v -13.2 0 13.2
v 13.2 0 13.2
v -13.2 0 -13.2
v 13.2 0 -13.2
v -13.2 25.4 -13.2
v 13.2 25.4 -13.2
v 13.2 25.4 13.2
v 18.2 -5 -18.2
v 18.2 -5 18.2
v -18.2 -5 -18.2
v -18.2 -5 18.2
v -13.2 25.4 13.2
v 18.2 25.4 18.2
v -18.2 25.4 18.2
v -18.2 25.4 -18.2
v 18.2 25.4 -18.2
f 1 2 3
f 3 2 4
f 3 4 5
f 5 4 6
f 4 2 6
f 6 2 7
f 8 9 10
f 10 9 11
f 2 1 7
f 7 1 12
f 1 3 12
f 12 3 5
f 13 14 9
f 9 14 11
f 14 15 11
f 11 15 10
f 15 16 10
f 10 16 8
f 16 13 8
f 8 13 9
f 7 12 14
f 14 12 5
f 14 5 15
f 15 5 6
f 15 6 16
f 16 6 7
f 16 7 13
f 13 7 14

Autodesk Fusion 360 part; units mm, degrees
sketch "Sketch1" plane through (0, 0, 0) normal (0, 1, 0) x (1, 0, 0)
  line L0 (18.2, 18.2) -> (-18.2, 18.2)
  line L1 (-18.2, 18.2) -> (-18.2, -18.2)
  line L2 (-18.2, -18.2) -> (18.2, -18.2)
  line L3 (18.2, -18.2) -> (18.2, 18.2)
  line L4 (18.2, 18.2) -> (-18.2, -18.2) construction
  line L5 (-18.2, 18.2) -> (18.2, -18.2) construction
  line L6 (-18.2, 18.2) -> (18.2, 18.2)
  line L7 (18.2, 18.2) -> (18.2, 13.2)
  line L8 (18.2, 13.2) -> (-18.2, 13.2)
  line L9 (-18.2, 13.2) -> (-18.2, 18.2)
  line L10 (18.2, -18.2) -> (-18.2, -18.2)
  line L11 (-18.2, -18.2) -> (-18.2, -13.2)
  line L12 (-18.2, -13.2) -> (18.2, -13.2)
  line L13 (18.2, -13.2) -> (18.2, -18.2)
  line L14 (-18.2, 13.2) -> (-13.2, 13.2)
  line L15 (-13.2, 13.2) -> (-13.2, -13.2)
  line L16 (-13.2, -13.2) -> (-18.2, -13.2)
  line L17 (-18.2, -13.2) -> (-18.2, 13.2)
  line L18 (18.2, 13.2) -> (13.2, 13.2)
  line L19 (13.2, 13.2) -> (13.2, -13.2)
  line L20 (13.2, -13.2) -> (18.2, -13.2)
  line L21 (18.2, -13.2) -> (18.2, 13.2)
  dimension "d4" = 36.4
  dimension "d5" = 36.4
  dimension "d6" = 5
  dimension "d7" = 5
  dimension "d8" = 5
  dimension "d9" = 5
extrude "Extrude1" add sketch "Sketch1" along normal blind 25.4 contours L0 L1 L3 L6 L7 L8 L9 L14 L18 | L3 L8 L12 L18 L19 L20 L21 | L1 L8 L12 L14 L15 L16 L17 | L1 L2 L3 L10 L11 L12 L13 L16 L20
extrude "Extrude2" add 1 faces at (-16.5333, 0, 4.4) along direction (0, -1, 0) blind 5
extrude "Extrude3" add sketch "Sketch1" against normal blind 5 contours L8 L12 L15 L19
equation "ONEINCH = 25.4 mm"
equation "TOLERANCE = 0.5 mm"
equation "WALL_THICKNESS = 5 mm"
equation "d4 = ONEINCH + ( 2 * TOLERANCE ) + ( WALL_THICKNESS * 2 )"
equation "d5 = ONEINCH + ( 2 * TOLERANCE ) + ( WALL_THICKNESS * 2 )"
equation "d6 = WALL_THICKNESS"
equation "d7 = WALL_THICKNESS"
equation "d8 = WALL_THICKNESS"
equation "d9 = WALL_THICKNESS"
equation "d10 = ONEINCH"
equation "d12 = WALL_THICKNESS"
